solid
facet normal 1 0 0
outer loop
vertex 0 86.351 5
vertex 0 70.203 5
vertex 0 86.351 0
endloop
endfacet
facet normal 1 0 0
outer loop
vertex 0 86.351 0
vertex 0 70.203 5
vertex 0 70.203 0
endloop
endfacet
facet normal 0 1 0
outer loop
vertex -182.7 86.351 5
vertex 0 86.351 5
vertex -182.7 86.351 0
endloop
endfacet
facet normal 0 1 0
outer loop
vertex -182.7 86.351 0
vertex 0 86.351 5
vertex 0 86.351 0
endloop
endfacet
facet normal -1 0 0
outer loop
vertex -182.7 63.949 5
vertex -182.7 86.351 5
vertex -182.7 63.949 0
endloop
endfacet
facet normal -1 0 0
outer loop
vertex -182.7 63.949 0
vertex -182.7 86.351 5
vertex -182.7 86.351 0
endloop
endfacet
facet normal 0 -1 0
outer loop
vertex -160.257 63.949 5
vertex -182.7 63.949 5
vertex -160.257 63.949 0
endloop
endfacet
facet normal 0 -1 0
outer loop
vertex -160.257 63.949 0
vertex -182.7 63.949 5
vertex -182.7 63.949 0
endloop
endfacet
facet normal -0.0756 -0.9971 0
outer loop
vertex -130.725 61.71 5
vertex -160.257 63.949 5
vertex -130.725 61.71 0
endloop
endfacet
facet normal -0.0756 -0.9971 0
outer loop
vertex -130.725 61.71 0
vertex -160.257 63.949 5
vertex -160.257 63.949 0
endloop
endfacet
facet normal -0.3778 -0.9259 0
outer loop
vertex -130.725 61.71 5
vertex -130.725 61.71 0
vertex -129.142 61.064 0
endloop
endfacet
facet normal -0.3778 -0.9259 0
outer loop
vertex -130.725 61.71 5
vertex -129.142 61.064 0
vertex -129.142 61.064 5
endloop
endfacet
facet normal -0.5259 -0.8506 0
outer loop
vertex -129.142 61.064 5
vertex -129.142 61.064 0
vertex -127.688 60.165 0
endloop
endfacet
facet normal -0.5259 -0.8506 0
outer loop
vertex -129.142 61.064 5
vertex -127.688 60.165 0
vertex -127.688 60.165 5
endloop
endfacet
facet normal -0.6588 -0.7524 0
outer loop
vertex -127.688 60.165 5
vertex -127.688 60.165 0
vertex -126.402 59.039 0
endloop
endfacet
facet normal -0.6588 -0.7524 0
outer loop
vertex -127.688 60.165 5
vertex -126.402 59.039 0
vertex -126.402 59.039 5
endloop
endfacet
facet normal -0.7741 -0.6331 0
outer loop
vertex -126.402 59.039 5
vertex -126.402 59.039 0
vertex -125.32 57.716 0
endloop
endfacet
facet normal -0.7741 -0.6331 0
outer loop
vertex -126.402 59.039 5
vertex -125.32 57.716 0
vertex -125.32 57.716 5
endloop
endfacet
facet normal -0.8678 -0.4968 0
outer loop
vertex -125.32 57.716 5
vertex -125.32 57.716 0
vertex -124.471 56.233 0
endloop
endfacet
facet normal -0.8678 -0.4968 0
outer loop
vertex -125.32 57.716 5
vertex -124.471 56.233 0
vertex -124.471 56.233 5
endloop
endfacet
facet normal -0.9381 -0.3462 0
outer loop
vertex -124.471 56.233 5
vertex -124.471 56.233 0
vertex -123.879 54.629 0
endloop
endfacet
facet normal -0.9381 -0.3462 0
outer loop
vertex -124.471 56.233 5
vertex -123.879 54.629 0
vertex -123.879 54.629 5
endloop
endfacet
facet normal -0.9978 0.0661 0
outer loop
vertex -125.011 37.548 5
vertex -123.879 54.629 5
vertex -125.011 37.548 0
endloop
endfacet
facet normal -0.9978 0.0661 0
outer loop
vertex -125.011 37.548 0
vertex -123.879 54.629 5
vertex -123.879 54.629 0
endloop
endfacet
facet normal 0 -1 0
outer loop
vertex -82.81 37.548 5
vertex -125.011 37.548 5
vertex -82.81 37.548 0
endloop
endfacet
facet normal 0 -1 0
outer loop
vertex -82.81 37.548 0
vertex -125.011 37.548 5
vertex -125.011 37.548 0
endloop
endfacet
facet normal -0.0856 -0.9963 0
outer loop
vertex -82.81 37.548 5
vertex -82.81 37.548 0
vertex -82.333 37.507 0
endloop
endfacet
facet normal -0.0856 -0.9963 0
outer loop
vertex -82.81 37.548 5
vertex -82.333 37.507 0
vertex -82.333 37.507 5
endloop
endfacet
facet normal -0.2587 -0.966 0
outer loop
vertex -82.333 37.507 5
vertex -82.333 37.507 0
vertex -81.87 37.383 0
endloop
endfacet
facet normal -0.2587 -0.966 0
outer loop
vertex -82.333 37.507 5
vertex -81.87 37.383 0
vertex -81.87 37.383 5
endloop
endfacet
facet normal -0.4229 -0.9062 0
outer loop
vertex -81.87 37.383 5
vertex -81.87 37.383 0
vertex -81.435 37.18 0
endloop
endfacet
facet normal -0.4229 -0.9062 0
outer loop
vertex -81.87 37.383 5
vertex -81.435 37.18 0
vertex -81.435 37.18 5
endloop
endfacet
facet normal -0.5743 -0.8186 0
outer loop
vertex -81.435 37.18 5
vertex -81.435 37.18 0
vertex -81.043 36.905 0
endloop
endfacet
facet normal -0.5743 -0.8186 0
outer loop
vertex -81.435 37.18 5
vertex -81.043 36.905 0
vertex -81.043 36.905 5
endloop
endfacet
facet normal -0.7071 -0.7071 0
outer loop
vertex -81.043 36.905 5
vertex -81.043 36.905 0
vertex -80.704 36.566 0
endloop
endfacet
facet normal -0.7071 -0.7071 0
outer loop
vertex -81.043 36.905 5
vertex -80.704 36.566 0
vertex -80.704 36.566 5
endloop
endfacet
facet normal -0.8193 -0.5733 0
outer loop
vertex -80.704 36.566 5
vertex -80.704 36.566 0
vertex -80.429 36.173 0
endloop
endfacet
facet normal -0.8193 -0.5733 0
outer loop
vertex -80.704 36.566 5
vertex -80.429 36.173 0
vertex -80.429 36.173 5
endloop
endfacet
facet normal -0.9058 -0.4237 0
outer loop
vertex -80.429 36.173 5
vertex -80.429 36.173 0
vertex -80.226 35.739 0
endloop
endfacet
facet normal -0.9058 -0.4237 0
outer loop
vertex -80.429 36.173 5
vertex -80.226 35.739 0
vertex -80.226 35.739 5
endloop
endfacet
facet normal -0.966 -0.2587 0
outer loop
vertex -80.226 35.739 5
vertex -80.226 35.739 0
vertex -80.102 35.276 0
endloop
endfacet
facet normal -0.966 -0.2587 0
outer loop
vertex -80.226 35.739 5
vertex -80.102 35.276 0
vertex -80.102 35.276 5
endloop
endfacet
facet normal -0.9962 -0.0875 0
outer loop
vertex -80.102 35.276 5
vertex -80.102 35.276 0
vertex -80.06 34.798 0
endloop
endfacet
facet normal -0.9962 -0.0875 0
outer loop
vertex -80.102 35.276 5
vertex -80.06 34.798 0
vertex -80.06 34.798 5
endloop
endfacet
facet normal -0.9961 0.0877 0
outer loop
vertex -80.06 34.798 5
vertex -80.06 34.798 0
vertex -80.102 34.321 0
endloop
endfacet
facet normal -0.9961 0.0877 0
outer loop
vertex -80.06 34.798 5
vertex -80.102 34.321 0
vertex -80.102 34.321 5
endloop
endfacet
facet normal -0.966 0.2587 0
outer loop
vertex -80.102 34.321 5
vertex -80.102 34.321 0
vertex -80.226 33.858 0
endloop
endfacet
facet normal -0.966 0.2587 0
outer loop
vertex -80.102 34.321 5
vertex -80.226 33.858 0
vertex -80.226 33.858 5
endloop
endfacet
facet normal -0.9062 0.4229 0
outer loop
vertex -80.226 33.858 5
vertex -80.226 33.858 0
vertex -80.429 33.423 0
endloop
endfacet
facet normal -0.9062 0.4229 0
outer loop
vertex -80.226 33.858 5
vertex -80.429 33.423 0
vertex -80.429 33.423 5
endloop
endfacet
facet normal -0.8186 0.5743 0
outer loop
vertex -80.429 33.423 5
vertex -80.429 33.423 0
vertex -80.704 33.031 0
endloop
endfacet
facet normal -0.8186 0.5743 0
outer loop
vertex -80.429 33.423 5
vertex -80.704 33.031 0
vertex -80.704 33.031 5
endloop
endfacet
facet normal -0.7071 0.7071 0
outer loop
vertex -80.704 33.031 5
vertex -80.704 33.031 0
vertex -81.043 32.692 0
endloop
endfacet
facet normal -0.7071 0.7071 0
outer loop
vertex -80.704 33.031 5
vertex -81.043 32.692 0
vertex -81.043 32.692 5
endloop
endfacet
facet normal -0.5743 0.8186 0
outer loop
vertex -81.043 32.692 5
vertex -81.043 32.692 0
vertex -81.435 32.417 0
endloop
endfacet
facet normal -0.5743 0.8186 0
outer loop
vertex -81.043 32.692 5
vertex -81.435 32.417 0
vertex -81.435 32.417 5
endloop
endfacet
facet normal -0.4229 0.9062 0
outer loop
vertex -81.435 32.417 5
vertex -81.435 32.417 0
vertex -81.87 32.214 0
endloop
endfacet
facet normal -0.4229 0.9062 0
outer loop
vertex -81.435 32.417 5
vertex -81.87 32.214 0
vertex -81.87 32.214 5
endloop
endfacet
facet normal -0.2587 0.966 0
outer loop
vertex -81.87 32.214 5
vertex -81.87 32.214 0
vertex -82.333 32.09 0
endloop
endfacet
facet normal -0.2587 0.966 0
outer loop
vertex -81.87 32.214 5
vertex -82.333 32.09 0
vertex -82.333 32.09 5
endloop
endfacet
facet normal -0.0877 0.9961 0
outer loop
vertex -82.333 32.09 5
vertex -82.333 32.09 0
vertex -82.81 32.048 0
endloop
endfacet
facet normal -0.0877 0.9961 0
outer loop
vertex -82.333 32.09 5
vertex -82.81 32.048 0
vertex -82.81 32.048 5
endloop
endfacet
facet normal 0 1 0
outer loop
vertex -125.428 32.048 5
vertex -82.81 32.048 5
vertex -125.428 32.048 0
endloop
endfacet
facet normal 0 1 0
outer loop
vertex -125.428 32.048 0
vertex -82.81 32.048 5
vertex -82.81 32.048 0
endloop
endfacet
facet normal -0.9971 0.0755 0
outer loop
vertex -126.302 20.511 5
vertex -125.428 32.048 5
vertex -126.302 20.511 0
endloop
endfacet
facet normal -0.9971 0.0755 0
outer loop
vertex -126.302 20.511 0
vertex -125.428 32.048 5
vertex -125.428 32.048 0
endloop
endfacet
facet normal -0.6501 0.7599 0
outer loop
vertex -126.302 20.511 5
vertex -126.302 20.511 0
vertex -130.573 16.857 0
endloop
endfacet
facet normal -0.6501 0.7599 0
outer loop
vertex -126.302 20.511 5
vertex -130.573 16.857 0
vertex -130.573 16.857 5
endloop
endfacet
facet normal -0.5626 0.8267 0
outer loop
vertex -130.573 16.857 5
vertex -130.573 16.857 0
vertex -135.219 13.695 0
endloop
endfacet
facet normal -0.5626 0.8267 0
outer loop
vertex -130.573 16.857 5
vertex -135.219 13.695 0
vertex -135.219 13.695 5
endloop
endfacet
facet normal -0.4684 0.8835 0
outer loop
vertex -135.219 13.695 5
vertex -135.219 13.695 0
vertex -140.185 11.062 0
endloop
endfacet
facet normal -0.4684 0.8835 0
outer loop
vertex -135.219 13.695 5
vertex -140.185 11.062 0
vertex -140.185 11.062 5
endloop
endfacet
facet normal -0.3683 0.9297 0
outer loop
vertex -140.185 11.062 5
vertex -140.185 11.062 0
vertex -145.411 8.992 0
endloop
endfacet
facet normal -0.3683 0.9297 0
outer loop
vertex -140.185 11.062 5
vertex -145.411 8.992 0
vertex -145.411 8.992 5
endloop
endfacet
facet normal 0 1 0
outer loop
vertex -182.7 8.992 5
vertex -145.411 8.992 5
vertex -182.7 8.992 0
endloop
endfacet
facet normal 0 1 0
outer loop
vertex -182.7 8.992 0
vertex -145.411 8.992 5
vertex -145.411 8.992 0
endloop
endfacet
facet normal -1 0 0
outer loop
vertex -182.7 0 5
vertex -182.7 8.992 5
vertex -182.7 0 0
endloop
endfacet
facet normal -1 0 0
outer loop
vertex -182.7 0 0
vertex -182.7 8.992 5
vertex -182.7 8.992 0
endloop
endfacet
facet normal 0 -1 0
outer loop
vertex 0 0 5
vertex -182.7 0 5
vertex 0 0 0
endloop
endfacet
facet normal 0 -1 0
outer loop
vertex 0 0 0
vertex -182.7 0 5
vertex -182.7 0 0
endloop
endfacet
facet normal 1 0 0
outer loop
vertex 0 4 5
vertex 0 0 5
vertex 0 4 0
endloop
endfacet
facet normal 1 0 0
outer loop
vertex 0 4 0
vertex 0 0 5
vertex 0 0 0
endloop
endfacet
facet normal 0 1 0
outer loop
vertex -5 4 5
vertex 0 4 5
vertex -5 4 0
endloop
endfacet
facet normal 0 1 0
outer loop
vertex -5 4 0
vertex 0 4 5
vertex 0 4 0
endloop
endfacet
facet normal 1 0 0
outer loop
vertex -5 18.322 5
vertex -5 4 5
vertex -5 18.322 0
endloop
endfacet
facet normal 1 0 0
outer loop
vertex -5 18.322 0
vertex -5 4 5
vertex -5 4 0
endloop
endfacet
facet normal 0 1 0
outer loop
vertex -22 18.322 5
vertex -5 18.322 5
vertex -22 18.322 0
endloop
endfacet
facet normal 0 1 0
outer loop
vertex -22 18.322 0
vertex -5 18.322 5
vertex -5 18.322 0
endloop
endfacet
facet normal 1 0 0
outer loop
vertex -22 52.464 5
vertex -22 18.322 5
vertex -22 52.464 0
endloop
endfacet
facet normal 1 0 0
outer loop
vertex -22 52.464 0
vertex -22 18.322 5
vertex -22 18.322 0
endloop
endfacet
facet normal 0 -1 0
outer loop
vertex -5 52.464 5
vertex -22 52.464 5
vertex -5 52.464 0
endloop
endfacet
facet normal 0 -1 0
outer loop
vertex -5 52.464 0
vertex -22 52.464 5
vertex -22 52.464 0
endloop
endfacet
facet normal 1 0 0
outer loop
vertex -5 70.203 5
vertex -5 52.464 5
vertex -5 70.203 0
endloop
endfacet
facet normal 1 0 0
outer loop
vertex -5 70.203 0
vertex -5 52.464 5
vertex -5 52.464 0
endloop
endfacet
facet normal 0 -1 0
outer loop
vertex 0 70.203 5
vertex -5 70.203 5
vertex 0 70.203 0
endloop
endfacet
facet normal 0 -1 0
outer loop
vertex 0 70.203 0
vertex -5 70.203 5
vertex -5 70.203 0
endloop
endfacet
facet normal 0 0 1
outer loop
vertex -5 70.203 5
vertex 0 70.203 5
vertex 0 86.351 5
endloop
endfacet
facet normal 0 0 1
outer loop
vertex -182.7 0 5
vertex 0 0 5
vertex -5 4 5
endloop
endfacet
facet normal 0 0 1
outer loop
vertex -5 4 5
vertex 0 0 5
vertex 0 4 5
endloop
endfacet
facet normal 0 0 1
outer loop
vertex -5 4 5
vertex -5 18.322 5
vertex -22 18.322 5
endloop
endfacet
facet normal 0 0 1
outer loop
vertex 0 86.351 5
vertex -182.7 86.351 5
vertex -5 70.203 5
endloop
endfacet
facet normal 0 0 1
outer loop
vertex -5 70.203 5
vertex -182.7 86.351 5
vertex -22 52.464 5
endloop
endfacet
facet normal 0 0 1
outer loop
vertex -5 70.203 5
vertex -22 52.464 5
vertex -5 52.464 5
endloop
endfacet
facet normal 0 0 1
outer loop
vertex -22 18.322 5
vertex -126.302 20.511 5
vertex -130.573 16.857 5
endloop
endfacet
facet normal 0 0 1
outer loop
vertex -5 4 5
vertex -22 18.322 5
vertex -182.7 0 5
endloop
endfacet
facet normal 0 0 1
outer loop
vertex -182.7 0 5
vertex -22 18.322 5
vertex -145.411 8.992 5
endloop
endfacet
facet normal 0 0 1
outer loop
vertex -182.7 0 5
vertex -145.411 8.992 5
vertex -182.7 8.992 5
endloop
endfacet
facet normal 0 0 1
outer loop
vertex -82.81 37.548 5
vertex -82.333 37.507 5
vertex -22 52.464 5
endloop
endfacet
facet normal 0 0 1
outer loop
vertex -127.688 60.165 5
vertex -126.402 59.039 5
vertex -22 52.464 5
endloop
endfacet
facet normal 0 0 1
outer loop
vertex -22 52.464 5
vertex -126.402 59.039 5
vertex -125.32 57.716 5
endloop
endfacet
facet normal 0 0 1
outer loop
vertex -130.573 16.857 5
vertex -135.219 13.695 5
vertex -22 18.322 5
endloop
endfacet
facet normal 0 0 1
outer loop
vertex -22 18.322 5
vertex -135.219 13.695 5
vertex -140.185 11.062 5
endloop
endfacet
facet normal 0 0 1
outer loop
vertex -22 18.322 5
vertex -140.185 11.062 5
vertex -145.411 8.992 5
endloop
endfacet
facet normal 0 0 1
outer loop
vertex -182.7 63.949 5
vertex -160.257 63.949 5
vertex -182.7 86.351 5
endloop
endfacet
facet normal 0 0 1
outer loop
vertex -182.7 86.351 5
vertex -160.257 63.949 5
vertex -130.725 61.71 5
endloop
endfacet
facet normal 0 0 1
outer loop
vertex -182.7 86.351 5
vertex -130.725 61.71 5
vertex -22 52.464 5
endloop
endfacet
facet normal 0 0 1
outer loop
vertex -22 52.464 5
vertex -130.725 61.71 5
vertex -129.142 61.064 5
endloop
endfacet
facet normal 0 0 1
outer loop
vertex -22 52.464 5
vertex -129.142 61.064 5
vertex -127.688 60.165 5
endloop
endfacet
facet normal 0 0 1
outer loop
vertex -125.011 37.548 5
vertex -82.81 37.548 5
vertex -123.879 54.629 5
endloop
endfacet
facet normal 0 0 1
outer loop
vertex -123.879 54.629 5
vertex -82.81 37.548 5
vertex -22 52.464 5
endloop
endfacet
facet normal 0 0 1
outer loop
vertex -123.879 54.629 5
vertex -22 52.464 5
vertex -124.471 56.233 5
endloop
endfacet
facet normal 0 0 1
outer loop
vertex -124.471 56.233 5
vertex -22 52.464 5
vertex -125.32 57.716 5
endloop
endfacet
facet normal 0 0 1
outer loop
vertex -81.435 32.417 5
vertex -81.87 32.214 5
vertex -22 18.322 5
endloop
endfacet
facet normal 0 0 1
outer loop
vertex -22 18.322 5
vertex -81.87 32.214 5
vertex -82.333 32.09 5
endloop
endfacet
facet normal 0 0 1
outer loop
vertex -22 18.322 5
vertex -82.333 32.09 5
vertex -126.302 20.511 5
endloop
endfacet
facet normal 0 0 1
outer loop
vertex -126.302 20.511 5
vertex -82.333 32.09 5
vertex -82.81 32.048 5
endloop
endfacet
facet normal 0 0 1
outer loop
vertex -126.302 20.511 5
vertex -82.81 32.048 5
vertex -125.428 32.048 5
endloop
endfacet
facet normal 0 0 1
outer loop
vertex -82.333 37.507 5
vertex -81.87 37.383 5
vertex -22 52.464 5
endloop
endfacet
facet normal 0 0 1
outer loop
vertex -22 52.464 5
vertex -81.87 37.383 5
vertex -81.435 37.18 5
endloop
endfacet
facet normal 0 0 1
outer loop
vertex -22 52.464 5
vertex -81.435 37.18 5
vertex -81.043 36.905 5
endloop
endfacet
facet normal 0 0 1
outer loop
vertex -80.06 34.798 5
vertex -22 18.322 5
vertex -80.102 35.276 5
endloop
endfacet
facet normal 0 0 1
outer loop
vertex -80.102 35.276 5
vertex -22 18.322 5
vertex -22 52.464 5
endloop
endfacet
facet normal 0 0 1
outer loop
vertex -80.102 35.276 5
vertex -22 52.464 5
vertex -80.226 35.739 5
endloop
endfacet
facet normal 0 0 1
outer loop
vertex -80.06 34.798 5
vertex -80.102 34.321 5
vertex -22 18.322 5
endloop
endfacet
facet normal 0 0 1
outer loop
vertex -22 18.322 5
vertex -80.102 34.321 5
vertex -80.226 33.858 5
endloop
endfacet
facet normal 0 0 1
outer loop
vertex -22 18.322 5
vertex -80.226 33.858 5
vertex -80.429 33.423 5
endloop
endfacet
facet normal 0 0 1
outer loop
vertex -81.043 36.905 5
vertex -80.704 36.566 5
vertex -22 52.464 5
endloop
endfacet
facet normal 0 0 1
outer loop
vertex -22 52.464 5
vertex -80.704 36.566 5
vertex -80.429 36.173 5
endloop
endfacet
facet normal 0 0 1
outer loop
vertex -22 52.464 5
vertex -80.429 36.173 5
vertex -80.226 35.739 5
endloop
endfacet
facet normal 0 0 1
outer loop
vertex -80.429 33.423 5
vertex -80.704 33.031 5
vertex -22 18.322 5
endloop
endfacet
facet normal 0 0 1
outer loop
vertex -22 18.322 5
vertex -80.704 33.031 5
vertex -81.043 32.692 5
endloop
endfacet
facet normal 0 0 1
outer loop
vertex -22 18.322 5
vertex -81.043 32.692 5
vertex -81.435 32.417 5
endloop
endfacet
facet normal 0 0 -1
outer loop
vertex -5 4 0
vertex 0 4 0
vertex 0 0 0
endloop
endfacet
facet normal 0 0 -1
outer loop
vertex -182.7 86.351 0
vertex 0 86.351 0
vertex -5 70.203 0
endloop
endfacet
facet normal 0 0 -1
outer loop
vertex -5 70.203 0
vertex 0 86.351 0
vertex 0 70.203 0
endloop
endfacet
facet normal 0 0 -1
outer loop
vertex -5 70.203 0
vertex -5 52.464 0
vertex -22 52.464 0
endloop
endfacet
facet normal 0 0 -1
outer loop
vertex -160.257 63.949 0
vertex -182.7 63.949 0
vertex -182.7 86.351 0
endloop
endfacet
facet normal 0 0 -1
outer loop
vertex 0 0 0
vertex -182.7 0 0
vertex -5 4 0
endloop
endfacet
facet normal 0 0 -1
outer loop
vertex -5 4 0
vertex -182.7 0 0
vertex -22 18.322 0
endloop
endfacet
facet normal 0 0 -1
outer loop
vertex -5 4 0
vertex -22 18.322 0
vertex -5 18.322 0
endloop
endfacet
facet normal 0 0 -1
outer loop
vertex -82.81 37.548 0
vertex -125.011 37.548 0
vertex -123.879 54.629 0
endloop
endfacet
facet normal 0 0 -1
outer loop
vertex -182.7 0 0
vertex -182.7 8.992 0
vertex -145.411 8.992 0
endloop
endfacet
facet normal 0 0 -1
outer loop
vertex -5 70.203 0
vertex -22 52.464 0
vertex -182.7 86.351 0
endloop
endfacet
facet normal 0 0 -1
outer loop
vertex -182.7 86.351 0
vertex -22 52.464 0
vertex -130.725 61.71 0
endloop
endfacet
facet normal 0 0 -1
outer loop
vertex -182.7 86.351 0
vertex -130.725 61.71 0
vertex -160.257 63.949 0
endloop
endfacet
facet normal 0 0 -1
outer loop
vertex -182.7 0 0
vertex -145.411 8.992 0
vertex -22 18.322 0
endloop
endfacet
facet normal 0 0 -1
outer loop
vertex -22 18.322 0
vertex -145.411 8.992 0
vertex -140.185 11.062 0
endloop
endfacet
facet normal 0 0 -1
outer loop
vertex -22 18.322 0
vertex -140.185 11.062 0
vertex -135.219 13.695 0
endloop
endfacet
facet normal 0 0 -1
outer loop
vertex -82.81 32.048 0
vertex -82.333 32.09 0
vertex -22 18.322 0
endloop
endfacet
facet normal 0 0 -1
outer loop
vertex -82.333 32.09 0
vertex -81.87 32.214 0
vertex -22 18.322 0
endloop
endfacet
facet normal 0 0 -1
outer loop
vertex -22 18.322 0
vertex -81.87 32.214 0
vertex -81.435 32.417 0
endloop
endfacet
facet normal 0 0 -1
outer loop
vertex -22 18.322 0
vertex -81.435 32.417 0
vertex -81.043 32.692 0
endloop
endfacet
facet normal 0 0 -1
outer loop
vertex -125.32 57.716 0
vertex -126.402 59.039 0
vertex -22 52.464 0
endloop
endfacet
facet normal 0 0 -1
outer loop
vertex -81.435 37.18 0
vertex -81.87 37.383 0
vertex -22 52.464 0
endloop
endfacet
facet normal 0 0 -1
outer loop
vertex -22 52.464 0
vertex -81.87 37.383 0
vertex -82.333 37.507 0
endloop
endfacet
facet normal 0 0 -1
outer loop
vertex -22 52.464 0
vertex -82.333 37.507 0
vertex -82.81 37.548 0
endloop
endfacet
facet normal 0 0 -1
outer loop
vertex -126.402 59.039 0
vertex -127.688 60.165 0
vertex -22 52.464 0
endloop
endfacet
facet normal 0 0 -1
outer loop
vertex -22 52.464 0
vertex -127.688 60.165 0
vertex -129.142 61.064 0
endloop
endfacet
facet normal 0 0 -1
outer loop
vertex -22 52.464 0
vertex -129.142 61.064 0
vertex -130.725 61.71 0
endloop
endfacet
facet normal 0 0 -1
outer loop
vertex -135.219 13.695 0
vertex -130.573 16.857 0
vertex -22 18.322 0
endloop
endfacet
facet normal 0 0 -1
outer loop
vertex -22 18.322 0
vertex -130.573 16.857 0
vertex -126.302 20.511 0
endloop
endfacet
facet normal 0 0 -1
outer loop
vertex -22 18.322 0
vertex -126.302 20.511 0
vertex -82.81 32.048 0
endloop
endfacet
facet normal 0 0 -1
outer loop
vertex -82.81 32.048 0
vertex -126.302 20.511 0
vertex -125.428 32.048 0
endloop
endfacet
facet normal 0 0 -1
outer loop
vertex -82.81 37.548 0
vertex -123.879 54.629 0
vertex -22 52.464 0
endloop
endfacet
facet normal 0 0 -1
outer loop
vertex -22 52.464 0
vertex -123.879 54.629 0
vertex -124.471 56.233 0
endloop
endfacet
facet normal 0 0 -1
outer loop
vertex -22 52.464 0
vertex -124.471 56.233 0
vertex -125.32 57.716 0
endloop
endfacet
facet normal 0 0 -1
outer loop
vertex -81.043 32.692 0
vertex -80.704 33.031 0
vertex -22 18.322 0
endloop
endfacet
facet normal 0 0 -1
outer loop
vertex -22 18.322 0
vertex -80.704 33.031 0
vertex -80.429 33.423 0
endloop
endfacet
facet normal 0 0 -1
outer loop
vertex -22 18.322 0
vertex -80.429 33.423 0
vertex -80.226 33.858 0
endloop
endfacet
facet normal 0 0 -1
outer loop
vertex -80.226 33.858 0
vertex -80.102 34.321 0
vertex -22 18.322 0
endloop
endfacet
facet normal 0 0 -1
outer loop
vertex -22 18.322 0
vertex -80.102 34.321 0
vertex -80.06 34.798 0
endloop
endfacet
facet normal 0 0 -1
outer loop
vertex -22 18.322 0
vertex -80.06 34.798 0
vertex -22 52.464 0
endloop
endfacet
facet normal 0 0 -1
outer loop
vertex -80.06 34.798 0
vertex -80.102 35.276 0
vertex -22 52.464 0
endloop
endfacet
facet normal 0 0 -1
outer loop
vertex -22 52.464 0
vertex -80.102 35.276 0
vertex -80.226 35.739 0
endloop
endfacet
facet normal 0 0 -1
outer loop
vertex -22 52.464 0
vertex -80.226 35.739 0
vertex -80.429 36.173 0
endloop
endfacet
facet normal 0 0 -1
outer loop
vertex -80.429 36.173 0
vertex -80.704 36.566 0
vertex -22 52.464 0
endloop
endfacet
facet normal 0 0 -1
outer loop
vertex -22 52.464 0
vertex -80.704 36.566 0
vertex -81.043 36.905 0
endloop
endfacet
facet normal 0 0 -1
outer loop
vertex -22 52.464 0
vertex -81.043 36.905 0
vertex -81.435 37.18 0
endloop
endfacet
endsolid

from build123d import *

# Parameters (mm, degrees)
BOSS_EXTRUDE1_DEPTH = 5


with BuildPart() as part:
    # Sketch1 → Boss-Extrude1 (new body)
    with BuildSketch(Plane.XY):
        with BuildLine():
            Line((-122.533931464, 0), (0, 0))
            Line((0, 0), (0, 4))
            Line((0, 4), (-5, 4))
            Line((-5, 4), (-5, 8.902615006))
            Line((-5, 8.902615006), (-5, 13.902615006))
            Line((-5, 13.902615006), (-5, 18.32224988))
            Line((-5, 18.32224988), (-22, 18.32224988))
            Line((-22, 18.32224988), (-22, 52.463633889))
            Line((-22, 52.463633889), (-5, 52.463633889))
            Line((-5, 52.463633889), (-5, 70.203021905))
            Line((-5, 70.203021905), (0, 70.203021905))
            Line((0, 70.203021905), (0, 86.350886134))
            Line((0, 86.350886134), (-182.7, 86.350886134))
            Line((-182.7, 86.350886134), (-182.7, 63.94896177))
            Line((-182.7, 63.94896177), (-160.256841342, 63.94896177))
            Line((-160.256841342, 63.94896177), (-130.724497172, 61.709515068))
            ThreePointArc((-130.724497172, 61.709515068), (-126.402059121, 59.039154196), (-123.878576155, 54.629354699))
            Line((-123.878576155, 54.629354699), (-125.011418309, 37.548381087))
            Line((-125.011418309, 37.548381087), (-82.810223158, 37.548381087))
            ThreePointArc((-82.810223158, 37.548381087), (-80.060223158, 34.798381087), (-82.810223158, 32.048381087))
            Line((-82.810223158, 32.048381087), (-125.427965277, 32.048381087))
            Line((-125.427965277, 32.048381087), (-126.301759952, 20.510976937))
            ThreePointArc((-126.301759952, 20.510976937), (-135.219115409, 13.694571486), (-145.410596187, 8.991771131))
            Line((-145.410596187, 8.991771131), (-182.7, 8.991771131))
            Line((-182.7, 8.991771131), (-182.7, 0))
            Line((-182.7, 0), (-122.533931464, 0))
        make_face()
    extrude(amount=BOSS_EXTRUDE1_DEPTH)


solid = part.part
